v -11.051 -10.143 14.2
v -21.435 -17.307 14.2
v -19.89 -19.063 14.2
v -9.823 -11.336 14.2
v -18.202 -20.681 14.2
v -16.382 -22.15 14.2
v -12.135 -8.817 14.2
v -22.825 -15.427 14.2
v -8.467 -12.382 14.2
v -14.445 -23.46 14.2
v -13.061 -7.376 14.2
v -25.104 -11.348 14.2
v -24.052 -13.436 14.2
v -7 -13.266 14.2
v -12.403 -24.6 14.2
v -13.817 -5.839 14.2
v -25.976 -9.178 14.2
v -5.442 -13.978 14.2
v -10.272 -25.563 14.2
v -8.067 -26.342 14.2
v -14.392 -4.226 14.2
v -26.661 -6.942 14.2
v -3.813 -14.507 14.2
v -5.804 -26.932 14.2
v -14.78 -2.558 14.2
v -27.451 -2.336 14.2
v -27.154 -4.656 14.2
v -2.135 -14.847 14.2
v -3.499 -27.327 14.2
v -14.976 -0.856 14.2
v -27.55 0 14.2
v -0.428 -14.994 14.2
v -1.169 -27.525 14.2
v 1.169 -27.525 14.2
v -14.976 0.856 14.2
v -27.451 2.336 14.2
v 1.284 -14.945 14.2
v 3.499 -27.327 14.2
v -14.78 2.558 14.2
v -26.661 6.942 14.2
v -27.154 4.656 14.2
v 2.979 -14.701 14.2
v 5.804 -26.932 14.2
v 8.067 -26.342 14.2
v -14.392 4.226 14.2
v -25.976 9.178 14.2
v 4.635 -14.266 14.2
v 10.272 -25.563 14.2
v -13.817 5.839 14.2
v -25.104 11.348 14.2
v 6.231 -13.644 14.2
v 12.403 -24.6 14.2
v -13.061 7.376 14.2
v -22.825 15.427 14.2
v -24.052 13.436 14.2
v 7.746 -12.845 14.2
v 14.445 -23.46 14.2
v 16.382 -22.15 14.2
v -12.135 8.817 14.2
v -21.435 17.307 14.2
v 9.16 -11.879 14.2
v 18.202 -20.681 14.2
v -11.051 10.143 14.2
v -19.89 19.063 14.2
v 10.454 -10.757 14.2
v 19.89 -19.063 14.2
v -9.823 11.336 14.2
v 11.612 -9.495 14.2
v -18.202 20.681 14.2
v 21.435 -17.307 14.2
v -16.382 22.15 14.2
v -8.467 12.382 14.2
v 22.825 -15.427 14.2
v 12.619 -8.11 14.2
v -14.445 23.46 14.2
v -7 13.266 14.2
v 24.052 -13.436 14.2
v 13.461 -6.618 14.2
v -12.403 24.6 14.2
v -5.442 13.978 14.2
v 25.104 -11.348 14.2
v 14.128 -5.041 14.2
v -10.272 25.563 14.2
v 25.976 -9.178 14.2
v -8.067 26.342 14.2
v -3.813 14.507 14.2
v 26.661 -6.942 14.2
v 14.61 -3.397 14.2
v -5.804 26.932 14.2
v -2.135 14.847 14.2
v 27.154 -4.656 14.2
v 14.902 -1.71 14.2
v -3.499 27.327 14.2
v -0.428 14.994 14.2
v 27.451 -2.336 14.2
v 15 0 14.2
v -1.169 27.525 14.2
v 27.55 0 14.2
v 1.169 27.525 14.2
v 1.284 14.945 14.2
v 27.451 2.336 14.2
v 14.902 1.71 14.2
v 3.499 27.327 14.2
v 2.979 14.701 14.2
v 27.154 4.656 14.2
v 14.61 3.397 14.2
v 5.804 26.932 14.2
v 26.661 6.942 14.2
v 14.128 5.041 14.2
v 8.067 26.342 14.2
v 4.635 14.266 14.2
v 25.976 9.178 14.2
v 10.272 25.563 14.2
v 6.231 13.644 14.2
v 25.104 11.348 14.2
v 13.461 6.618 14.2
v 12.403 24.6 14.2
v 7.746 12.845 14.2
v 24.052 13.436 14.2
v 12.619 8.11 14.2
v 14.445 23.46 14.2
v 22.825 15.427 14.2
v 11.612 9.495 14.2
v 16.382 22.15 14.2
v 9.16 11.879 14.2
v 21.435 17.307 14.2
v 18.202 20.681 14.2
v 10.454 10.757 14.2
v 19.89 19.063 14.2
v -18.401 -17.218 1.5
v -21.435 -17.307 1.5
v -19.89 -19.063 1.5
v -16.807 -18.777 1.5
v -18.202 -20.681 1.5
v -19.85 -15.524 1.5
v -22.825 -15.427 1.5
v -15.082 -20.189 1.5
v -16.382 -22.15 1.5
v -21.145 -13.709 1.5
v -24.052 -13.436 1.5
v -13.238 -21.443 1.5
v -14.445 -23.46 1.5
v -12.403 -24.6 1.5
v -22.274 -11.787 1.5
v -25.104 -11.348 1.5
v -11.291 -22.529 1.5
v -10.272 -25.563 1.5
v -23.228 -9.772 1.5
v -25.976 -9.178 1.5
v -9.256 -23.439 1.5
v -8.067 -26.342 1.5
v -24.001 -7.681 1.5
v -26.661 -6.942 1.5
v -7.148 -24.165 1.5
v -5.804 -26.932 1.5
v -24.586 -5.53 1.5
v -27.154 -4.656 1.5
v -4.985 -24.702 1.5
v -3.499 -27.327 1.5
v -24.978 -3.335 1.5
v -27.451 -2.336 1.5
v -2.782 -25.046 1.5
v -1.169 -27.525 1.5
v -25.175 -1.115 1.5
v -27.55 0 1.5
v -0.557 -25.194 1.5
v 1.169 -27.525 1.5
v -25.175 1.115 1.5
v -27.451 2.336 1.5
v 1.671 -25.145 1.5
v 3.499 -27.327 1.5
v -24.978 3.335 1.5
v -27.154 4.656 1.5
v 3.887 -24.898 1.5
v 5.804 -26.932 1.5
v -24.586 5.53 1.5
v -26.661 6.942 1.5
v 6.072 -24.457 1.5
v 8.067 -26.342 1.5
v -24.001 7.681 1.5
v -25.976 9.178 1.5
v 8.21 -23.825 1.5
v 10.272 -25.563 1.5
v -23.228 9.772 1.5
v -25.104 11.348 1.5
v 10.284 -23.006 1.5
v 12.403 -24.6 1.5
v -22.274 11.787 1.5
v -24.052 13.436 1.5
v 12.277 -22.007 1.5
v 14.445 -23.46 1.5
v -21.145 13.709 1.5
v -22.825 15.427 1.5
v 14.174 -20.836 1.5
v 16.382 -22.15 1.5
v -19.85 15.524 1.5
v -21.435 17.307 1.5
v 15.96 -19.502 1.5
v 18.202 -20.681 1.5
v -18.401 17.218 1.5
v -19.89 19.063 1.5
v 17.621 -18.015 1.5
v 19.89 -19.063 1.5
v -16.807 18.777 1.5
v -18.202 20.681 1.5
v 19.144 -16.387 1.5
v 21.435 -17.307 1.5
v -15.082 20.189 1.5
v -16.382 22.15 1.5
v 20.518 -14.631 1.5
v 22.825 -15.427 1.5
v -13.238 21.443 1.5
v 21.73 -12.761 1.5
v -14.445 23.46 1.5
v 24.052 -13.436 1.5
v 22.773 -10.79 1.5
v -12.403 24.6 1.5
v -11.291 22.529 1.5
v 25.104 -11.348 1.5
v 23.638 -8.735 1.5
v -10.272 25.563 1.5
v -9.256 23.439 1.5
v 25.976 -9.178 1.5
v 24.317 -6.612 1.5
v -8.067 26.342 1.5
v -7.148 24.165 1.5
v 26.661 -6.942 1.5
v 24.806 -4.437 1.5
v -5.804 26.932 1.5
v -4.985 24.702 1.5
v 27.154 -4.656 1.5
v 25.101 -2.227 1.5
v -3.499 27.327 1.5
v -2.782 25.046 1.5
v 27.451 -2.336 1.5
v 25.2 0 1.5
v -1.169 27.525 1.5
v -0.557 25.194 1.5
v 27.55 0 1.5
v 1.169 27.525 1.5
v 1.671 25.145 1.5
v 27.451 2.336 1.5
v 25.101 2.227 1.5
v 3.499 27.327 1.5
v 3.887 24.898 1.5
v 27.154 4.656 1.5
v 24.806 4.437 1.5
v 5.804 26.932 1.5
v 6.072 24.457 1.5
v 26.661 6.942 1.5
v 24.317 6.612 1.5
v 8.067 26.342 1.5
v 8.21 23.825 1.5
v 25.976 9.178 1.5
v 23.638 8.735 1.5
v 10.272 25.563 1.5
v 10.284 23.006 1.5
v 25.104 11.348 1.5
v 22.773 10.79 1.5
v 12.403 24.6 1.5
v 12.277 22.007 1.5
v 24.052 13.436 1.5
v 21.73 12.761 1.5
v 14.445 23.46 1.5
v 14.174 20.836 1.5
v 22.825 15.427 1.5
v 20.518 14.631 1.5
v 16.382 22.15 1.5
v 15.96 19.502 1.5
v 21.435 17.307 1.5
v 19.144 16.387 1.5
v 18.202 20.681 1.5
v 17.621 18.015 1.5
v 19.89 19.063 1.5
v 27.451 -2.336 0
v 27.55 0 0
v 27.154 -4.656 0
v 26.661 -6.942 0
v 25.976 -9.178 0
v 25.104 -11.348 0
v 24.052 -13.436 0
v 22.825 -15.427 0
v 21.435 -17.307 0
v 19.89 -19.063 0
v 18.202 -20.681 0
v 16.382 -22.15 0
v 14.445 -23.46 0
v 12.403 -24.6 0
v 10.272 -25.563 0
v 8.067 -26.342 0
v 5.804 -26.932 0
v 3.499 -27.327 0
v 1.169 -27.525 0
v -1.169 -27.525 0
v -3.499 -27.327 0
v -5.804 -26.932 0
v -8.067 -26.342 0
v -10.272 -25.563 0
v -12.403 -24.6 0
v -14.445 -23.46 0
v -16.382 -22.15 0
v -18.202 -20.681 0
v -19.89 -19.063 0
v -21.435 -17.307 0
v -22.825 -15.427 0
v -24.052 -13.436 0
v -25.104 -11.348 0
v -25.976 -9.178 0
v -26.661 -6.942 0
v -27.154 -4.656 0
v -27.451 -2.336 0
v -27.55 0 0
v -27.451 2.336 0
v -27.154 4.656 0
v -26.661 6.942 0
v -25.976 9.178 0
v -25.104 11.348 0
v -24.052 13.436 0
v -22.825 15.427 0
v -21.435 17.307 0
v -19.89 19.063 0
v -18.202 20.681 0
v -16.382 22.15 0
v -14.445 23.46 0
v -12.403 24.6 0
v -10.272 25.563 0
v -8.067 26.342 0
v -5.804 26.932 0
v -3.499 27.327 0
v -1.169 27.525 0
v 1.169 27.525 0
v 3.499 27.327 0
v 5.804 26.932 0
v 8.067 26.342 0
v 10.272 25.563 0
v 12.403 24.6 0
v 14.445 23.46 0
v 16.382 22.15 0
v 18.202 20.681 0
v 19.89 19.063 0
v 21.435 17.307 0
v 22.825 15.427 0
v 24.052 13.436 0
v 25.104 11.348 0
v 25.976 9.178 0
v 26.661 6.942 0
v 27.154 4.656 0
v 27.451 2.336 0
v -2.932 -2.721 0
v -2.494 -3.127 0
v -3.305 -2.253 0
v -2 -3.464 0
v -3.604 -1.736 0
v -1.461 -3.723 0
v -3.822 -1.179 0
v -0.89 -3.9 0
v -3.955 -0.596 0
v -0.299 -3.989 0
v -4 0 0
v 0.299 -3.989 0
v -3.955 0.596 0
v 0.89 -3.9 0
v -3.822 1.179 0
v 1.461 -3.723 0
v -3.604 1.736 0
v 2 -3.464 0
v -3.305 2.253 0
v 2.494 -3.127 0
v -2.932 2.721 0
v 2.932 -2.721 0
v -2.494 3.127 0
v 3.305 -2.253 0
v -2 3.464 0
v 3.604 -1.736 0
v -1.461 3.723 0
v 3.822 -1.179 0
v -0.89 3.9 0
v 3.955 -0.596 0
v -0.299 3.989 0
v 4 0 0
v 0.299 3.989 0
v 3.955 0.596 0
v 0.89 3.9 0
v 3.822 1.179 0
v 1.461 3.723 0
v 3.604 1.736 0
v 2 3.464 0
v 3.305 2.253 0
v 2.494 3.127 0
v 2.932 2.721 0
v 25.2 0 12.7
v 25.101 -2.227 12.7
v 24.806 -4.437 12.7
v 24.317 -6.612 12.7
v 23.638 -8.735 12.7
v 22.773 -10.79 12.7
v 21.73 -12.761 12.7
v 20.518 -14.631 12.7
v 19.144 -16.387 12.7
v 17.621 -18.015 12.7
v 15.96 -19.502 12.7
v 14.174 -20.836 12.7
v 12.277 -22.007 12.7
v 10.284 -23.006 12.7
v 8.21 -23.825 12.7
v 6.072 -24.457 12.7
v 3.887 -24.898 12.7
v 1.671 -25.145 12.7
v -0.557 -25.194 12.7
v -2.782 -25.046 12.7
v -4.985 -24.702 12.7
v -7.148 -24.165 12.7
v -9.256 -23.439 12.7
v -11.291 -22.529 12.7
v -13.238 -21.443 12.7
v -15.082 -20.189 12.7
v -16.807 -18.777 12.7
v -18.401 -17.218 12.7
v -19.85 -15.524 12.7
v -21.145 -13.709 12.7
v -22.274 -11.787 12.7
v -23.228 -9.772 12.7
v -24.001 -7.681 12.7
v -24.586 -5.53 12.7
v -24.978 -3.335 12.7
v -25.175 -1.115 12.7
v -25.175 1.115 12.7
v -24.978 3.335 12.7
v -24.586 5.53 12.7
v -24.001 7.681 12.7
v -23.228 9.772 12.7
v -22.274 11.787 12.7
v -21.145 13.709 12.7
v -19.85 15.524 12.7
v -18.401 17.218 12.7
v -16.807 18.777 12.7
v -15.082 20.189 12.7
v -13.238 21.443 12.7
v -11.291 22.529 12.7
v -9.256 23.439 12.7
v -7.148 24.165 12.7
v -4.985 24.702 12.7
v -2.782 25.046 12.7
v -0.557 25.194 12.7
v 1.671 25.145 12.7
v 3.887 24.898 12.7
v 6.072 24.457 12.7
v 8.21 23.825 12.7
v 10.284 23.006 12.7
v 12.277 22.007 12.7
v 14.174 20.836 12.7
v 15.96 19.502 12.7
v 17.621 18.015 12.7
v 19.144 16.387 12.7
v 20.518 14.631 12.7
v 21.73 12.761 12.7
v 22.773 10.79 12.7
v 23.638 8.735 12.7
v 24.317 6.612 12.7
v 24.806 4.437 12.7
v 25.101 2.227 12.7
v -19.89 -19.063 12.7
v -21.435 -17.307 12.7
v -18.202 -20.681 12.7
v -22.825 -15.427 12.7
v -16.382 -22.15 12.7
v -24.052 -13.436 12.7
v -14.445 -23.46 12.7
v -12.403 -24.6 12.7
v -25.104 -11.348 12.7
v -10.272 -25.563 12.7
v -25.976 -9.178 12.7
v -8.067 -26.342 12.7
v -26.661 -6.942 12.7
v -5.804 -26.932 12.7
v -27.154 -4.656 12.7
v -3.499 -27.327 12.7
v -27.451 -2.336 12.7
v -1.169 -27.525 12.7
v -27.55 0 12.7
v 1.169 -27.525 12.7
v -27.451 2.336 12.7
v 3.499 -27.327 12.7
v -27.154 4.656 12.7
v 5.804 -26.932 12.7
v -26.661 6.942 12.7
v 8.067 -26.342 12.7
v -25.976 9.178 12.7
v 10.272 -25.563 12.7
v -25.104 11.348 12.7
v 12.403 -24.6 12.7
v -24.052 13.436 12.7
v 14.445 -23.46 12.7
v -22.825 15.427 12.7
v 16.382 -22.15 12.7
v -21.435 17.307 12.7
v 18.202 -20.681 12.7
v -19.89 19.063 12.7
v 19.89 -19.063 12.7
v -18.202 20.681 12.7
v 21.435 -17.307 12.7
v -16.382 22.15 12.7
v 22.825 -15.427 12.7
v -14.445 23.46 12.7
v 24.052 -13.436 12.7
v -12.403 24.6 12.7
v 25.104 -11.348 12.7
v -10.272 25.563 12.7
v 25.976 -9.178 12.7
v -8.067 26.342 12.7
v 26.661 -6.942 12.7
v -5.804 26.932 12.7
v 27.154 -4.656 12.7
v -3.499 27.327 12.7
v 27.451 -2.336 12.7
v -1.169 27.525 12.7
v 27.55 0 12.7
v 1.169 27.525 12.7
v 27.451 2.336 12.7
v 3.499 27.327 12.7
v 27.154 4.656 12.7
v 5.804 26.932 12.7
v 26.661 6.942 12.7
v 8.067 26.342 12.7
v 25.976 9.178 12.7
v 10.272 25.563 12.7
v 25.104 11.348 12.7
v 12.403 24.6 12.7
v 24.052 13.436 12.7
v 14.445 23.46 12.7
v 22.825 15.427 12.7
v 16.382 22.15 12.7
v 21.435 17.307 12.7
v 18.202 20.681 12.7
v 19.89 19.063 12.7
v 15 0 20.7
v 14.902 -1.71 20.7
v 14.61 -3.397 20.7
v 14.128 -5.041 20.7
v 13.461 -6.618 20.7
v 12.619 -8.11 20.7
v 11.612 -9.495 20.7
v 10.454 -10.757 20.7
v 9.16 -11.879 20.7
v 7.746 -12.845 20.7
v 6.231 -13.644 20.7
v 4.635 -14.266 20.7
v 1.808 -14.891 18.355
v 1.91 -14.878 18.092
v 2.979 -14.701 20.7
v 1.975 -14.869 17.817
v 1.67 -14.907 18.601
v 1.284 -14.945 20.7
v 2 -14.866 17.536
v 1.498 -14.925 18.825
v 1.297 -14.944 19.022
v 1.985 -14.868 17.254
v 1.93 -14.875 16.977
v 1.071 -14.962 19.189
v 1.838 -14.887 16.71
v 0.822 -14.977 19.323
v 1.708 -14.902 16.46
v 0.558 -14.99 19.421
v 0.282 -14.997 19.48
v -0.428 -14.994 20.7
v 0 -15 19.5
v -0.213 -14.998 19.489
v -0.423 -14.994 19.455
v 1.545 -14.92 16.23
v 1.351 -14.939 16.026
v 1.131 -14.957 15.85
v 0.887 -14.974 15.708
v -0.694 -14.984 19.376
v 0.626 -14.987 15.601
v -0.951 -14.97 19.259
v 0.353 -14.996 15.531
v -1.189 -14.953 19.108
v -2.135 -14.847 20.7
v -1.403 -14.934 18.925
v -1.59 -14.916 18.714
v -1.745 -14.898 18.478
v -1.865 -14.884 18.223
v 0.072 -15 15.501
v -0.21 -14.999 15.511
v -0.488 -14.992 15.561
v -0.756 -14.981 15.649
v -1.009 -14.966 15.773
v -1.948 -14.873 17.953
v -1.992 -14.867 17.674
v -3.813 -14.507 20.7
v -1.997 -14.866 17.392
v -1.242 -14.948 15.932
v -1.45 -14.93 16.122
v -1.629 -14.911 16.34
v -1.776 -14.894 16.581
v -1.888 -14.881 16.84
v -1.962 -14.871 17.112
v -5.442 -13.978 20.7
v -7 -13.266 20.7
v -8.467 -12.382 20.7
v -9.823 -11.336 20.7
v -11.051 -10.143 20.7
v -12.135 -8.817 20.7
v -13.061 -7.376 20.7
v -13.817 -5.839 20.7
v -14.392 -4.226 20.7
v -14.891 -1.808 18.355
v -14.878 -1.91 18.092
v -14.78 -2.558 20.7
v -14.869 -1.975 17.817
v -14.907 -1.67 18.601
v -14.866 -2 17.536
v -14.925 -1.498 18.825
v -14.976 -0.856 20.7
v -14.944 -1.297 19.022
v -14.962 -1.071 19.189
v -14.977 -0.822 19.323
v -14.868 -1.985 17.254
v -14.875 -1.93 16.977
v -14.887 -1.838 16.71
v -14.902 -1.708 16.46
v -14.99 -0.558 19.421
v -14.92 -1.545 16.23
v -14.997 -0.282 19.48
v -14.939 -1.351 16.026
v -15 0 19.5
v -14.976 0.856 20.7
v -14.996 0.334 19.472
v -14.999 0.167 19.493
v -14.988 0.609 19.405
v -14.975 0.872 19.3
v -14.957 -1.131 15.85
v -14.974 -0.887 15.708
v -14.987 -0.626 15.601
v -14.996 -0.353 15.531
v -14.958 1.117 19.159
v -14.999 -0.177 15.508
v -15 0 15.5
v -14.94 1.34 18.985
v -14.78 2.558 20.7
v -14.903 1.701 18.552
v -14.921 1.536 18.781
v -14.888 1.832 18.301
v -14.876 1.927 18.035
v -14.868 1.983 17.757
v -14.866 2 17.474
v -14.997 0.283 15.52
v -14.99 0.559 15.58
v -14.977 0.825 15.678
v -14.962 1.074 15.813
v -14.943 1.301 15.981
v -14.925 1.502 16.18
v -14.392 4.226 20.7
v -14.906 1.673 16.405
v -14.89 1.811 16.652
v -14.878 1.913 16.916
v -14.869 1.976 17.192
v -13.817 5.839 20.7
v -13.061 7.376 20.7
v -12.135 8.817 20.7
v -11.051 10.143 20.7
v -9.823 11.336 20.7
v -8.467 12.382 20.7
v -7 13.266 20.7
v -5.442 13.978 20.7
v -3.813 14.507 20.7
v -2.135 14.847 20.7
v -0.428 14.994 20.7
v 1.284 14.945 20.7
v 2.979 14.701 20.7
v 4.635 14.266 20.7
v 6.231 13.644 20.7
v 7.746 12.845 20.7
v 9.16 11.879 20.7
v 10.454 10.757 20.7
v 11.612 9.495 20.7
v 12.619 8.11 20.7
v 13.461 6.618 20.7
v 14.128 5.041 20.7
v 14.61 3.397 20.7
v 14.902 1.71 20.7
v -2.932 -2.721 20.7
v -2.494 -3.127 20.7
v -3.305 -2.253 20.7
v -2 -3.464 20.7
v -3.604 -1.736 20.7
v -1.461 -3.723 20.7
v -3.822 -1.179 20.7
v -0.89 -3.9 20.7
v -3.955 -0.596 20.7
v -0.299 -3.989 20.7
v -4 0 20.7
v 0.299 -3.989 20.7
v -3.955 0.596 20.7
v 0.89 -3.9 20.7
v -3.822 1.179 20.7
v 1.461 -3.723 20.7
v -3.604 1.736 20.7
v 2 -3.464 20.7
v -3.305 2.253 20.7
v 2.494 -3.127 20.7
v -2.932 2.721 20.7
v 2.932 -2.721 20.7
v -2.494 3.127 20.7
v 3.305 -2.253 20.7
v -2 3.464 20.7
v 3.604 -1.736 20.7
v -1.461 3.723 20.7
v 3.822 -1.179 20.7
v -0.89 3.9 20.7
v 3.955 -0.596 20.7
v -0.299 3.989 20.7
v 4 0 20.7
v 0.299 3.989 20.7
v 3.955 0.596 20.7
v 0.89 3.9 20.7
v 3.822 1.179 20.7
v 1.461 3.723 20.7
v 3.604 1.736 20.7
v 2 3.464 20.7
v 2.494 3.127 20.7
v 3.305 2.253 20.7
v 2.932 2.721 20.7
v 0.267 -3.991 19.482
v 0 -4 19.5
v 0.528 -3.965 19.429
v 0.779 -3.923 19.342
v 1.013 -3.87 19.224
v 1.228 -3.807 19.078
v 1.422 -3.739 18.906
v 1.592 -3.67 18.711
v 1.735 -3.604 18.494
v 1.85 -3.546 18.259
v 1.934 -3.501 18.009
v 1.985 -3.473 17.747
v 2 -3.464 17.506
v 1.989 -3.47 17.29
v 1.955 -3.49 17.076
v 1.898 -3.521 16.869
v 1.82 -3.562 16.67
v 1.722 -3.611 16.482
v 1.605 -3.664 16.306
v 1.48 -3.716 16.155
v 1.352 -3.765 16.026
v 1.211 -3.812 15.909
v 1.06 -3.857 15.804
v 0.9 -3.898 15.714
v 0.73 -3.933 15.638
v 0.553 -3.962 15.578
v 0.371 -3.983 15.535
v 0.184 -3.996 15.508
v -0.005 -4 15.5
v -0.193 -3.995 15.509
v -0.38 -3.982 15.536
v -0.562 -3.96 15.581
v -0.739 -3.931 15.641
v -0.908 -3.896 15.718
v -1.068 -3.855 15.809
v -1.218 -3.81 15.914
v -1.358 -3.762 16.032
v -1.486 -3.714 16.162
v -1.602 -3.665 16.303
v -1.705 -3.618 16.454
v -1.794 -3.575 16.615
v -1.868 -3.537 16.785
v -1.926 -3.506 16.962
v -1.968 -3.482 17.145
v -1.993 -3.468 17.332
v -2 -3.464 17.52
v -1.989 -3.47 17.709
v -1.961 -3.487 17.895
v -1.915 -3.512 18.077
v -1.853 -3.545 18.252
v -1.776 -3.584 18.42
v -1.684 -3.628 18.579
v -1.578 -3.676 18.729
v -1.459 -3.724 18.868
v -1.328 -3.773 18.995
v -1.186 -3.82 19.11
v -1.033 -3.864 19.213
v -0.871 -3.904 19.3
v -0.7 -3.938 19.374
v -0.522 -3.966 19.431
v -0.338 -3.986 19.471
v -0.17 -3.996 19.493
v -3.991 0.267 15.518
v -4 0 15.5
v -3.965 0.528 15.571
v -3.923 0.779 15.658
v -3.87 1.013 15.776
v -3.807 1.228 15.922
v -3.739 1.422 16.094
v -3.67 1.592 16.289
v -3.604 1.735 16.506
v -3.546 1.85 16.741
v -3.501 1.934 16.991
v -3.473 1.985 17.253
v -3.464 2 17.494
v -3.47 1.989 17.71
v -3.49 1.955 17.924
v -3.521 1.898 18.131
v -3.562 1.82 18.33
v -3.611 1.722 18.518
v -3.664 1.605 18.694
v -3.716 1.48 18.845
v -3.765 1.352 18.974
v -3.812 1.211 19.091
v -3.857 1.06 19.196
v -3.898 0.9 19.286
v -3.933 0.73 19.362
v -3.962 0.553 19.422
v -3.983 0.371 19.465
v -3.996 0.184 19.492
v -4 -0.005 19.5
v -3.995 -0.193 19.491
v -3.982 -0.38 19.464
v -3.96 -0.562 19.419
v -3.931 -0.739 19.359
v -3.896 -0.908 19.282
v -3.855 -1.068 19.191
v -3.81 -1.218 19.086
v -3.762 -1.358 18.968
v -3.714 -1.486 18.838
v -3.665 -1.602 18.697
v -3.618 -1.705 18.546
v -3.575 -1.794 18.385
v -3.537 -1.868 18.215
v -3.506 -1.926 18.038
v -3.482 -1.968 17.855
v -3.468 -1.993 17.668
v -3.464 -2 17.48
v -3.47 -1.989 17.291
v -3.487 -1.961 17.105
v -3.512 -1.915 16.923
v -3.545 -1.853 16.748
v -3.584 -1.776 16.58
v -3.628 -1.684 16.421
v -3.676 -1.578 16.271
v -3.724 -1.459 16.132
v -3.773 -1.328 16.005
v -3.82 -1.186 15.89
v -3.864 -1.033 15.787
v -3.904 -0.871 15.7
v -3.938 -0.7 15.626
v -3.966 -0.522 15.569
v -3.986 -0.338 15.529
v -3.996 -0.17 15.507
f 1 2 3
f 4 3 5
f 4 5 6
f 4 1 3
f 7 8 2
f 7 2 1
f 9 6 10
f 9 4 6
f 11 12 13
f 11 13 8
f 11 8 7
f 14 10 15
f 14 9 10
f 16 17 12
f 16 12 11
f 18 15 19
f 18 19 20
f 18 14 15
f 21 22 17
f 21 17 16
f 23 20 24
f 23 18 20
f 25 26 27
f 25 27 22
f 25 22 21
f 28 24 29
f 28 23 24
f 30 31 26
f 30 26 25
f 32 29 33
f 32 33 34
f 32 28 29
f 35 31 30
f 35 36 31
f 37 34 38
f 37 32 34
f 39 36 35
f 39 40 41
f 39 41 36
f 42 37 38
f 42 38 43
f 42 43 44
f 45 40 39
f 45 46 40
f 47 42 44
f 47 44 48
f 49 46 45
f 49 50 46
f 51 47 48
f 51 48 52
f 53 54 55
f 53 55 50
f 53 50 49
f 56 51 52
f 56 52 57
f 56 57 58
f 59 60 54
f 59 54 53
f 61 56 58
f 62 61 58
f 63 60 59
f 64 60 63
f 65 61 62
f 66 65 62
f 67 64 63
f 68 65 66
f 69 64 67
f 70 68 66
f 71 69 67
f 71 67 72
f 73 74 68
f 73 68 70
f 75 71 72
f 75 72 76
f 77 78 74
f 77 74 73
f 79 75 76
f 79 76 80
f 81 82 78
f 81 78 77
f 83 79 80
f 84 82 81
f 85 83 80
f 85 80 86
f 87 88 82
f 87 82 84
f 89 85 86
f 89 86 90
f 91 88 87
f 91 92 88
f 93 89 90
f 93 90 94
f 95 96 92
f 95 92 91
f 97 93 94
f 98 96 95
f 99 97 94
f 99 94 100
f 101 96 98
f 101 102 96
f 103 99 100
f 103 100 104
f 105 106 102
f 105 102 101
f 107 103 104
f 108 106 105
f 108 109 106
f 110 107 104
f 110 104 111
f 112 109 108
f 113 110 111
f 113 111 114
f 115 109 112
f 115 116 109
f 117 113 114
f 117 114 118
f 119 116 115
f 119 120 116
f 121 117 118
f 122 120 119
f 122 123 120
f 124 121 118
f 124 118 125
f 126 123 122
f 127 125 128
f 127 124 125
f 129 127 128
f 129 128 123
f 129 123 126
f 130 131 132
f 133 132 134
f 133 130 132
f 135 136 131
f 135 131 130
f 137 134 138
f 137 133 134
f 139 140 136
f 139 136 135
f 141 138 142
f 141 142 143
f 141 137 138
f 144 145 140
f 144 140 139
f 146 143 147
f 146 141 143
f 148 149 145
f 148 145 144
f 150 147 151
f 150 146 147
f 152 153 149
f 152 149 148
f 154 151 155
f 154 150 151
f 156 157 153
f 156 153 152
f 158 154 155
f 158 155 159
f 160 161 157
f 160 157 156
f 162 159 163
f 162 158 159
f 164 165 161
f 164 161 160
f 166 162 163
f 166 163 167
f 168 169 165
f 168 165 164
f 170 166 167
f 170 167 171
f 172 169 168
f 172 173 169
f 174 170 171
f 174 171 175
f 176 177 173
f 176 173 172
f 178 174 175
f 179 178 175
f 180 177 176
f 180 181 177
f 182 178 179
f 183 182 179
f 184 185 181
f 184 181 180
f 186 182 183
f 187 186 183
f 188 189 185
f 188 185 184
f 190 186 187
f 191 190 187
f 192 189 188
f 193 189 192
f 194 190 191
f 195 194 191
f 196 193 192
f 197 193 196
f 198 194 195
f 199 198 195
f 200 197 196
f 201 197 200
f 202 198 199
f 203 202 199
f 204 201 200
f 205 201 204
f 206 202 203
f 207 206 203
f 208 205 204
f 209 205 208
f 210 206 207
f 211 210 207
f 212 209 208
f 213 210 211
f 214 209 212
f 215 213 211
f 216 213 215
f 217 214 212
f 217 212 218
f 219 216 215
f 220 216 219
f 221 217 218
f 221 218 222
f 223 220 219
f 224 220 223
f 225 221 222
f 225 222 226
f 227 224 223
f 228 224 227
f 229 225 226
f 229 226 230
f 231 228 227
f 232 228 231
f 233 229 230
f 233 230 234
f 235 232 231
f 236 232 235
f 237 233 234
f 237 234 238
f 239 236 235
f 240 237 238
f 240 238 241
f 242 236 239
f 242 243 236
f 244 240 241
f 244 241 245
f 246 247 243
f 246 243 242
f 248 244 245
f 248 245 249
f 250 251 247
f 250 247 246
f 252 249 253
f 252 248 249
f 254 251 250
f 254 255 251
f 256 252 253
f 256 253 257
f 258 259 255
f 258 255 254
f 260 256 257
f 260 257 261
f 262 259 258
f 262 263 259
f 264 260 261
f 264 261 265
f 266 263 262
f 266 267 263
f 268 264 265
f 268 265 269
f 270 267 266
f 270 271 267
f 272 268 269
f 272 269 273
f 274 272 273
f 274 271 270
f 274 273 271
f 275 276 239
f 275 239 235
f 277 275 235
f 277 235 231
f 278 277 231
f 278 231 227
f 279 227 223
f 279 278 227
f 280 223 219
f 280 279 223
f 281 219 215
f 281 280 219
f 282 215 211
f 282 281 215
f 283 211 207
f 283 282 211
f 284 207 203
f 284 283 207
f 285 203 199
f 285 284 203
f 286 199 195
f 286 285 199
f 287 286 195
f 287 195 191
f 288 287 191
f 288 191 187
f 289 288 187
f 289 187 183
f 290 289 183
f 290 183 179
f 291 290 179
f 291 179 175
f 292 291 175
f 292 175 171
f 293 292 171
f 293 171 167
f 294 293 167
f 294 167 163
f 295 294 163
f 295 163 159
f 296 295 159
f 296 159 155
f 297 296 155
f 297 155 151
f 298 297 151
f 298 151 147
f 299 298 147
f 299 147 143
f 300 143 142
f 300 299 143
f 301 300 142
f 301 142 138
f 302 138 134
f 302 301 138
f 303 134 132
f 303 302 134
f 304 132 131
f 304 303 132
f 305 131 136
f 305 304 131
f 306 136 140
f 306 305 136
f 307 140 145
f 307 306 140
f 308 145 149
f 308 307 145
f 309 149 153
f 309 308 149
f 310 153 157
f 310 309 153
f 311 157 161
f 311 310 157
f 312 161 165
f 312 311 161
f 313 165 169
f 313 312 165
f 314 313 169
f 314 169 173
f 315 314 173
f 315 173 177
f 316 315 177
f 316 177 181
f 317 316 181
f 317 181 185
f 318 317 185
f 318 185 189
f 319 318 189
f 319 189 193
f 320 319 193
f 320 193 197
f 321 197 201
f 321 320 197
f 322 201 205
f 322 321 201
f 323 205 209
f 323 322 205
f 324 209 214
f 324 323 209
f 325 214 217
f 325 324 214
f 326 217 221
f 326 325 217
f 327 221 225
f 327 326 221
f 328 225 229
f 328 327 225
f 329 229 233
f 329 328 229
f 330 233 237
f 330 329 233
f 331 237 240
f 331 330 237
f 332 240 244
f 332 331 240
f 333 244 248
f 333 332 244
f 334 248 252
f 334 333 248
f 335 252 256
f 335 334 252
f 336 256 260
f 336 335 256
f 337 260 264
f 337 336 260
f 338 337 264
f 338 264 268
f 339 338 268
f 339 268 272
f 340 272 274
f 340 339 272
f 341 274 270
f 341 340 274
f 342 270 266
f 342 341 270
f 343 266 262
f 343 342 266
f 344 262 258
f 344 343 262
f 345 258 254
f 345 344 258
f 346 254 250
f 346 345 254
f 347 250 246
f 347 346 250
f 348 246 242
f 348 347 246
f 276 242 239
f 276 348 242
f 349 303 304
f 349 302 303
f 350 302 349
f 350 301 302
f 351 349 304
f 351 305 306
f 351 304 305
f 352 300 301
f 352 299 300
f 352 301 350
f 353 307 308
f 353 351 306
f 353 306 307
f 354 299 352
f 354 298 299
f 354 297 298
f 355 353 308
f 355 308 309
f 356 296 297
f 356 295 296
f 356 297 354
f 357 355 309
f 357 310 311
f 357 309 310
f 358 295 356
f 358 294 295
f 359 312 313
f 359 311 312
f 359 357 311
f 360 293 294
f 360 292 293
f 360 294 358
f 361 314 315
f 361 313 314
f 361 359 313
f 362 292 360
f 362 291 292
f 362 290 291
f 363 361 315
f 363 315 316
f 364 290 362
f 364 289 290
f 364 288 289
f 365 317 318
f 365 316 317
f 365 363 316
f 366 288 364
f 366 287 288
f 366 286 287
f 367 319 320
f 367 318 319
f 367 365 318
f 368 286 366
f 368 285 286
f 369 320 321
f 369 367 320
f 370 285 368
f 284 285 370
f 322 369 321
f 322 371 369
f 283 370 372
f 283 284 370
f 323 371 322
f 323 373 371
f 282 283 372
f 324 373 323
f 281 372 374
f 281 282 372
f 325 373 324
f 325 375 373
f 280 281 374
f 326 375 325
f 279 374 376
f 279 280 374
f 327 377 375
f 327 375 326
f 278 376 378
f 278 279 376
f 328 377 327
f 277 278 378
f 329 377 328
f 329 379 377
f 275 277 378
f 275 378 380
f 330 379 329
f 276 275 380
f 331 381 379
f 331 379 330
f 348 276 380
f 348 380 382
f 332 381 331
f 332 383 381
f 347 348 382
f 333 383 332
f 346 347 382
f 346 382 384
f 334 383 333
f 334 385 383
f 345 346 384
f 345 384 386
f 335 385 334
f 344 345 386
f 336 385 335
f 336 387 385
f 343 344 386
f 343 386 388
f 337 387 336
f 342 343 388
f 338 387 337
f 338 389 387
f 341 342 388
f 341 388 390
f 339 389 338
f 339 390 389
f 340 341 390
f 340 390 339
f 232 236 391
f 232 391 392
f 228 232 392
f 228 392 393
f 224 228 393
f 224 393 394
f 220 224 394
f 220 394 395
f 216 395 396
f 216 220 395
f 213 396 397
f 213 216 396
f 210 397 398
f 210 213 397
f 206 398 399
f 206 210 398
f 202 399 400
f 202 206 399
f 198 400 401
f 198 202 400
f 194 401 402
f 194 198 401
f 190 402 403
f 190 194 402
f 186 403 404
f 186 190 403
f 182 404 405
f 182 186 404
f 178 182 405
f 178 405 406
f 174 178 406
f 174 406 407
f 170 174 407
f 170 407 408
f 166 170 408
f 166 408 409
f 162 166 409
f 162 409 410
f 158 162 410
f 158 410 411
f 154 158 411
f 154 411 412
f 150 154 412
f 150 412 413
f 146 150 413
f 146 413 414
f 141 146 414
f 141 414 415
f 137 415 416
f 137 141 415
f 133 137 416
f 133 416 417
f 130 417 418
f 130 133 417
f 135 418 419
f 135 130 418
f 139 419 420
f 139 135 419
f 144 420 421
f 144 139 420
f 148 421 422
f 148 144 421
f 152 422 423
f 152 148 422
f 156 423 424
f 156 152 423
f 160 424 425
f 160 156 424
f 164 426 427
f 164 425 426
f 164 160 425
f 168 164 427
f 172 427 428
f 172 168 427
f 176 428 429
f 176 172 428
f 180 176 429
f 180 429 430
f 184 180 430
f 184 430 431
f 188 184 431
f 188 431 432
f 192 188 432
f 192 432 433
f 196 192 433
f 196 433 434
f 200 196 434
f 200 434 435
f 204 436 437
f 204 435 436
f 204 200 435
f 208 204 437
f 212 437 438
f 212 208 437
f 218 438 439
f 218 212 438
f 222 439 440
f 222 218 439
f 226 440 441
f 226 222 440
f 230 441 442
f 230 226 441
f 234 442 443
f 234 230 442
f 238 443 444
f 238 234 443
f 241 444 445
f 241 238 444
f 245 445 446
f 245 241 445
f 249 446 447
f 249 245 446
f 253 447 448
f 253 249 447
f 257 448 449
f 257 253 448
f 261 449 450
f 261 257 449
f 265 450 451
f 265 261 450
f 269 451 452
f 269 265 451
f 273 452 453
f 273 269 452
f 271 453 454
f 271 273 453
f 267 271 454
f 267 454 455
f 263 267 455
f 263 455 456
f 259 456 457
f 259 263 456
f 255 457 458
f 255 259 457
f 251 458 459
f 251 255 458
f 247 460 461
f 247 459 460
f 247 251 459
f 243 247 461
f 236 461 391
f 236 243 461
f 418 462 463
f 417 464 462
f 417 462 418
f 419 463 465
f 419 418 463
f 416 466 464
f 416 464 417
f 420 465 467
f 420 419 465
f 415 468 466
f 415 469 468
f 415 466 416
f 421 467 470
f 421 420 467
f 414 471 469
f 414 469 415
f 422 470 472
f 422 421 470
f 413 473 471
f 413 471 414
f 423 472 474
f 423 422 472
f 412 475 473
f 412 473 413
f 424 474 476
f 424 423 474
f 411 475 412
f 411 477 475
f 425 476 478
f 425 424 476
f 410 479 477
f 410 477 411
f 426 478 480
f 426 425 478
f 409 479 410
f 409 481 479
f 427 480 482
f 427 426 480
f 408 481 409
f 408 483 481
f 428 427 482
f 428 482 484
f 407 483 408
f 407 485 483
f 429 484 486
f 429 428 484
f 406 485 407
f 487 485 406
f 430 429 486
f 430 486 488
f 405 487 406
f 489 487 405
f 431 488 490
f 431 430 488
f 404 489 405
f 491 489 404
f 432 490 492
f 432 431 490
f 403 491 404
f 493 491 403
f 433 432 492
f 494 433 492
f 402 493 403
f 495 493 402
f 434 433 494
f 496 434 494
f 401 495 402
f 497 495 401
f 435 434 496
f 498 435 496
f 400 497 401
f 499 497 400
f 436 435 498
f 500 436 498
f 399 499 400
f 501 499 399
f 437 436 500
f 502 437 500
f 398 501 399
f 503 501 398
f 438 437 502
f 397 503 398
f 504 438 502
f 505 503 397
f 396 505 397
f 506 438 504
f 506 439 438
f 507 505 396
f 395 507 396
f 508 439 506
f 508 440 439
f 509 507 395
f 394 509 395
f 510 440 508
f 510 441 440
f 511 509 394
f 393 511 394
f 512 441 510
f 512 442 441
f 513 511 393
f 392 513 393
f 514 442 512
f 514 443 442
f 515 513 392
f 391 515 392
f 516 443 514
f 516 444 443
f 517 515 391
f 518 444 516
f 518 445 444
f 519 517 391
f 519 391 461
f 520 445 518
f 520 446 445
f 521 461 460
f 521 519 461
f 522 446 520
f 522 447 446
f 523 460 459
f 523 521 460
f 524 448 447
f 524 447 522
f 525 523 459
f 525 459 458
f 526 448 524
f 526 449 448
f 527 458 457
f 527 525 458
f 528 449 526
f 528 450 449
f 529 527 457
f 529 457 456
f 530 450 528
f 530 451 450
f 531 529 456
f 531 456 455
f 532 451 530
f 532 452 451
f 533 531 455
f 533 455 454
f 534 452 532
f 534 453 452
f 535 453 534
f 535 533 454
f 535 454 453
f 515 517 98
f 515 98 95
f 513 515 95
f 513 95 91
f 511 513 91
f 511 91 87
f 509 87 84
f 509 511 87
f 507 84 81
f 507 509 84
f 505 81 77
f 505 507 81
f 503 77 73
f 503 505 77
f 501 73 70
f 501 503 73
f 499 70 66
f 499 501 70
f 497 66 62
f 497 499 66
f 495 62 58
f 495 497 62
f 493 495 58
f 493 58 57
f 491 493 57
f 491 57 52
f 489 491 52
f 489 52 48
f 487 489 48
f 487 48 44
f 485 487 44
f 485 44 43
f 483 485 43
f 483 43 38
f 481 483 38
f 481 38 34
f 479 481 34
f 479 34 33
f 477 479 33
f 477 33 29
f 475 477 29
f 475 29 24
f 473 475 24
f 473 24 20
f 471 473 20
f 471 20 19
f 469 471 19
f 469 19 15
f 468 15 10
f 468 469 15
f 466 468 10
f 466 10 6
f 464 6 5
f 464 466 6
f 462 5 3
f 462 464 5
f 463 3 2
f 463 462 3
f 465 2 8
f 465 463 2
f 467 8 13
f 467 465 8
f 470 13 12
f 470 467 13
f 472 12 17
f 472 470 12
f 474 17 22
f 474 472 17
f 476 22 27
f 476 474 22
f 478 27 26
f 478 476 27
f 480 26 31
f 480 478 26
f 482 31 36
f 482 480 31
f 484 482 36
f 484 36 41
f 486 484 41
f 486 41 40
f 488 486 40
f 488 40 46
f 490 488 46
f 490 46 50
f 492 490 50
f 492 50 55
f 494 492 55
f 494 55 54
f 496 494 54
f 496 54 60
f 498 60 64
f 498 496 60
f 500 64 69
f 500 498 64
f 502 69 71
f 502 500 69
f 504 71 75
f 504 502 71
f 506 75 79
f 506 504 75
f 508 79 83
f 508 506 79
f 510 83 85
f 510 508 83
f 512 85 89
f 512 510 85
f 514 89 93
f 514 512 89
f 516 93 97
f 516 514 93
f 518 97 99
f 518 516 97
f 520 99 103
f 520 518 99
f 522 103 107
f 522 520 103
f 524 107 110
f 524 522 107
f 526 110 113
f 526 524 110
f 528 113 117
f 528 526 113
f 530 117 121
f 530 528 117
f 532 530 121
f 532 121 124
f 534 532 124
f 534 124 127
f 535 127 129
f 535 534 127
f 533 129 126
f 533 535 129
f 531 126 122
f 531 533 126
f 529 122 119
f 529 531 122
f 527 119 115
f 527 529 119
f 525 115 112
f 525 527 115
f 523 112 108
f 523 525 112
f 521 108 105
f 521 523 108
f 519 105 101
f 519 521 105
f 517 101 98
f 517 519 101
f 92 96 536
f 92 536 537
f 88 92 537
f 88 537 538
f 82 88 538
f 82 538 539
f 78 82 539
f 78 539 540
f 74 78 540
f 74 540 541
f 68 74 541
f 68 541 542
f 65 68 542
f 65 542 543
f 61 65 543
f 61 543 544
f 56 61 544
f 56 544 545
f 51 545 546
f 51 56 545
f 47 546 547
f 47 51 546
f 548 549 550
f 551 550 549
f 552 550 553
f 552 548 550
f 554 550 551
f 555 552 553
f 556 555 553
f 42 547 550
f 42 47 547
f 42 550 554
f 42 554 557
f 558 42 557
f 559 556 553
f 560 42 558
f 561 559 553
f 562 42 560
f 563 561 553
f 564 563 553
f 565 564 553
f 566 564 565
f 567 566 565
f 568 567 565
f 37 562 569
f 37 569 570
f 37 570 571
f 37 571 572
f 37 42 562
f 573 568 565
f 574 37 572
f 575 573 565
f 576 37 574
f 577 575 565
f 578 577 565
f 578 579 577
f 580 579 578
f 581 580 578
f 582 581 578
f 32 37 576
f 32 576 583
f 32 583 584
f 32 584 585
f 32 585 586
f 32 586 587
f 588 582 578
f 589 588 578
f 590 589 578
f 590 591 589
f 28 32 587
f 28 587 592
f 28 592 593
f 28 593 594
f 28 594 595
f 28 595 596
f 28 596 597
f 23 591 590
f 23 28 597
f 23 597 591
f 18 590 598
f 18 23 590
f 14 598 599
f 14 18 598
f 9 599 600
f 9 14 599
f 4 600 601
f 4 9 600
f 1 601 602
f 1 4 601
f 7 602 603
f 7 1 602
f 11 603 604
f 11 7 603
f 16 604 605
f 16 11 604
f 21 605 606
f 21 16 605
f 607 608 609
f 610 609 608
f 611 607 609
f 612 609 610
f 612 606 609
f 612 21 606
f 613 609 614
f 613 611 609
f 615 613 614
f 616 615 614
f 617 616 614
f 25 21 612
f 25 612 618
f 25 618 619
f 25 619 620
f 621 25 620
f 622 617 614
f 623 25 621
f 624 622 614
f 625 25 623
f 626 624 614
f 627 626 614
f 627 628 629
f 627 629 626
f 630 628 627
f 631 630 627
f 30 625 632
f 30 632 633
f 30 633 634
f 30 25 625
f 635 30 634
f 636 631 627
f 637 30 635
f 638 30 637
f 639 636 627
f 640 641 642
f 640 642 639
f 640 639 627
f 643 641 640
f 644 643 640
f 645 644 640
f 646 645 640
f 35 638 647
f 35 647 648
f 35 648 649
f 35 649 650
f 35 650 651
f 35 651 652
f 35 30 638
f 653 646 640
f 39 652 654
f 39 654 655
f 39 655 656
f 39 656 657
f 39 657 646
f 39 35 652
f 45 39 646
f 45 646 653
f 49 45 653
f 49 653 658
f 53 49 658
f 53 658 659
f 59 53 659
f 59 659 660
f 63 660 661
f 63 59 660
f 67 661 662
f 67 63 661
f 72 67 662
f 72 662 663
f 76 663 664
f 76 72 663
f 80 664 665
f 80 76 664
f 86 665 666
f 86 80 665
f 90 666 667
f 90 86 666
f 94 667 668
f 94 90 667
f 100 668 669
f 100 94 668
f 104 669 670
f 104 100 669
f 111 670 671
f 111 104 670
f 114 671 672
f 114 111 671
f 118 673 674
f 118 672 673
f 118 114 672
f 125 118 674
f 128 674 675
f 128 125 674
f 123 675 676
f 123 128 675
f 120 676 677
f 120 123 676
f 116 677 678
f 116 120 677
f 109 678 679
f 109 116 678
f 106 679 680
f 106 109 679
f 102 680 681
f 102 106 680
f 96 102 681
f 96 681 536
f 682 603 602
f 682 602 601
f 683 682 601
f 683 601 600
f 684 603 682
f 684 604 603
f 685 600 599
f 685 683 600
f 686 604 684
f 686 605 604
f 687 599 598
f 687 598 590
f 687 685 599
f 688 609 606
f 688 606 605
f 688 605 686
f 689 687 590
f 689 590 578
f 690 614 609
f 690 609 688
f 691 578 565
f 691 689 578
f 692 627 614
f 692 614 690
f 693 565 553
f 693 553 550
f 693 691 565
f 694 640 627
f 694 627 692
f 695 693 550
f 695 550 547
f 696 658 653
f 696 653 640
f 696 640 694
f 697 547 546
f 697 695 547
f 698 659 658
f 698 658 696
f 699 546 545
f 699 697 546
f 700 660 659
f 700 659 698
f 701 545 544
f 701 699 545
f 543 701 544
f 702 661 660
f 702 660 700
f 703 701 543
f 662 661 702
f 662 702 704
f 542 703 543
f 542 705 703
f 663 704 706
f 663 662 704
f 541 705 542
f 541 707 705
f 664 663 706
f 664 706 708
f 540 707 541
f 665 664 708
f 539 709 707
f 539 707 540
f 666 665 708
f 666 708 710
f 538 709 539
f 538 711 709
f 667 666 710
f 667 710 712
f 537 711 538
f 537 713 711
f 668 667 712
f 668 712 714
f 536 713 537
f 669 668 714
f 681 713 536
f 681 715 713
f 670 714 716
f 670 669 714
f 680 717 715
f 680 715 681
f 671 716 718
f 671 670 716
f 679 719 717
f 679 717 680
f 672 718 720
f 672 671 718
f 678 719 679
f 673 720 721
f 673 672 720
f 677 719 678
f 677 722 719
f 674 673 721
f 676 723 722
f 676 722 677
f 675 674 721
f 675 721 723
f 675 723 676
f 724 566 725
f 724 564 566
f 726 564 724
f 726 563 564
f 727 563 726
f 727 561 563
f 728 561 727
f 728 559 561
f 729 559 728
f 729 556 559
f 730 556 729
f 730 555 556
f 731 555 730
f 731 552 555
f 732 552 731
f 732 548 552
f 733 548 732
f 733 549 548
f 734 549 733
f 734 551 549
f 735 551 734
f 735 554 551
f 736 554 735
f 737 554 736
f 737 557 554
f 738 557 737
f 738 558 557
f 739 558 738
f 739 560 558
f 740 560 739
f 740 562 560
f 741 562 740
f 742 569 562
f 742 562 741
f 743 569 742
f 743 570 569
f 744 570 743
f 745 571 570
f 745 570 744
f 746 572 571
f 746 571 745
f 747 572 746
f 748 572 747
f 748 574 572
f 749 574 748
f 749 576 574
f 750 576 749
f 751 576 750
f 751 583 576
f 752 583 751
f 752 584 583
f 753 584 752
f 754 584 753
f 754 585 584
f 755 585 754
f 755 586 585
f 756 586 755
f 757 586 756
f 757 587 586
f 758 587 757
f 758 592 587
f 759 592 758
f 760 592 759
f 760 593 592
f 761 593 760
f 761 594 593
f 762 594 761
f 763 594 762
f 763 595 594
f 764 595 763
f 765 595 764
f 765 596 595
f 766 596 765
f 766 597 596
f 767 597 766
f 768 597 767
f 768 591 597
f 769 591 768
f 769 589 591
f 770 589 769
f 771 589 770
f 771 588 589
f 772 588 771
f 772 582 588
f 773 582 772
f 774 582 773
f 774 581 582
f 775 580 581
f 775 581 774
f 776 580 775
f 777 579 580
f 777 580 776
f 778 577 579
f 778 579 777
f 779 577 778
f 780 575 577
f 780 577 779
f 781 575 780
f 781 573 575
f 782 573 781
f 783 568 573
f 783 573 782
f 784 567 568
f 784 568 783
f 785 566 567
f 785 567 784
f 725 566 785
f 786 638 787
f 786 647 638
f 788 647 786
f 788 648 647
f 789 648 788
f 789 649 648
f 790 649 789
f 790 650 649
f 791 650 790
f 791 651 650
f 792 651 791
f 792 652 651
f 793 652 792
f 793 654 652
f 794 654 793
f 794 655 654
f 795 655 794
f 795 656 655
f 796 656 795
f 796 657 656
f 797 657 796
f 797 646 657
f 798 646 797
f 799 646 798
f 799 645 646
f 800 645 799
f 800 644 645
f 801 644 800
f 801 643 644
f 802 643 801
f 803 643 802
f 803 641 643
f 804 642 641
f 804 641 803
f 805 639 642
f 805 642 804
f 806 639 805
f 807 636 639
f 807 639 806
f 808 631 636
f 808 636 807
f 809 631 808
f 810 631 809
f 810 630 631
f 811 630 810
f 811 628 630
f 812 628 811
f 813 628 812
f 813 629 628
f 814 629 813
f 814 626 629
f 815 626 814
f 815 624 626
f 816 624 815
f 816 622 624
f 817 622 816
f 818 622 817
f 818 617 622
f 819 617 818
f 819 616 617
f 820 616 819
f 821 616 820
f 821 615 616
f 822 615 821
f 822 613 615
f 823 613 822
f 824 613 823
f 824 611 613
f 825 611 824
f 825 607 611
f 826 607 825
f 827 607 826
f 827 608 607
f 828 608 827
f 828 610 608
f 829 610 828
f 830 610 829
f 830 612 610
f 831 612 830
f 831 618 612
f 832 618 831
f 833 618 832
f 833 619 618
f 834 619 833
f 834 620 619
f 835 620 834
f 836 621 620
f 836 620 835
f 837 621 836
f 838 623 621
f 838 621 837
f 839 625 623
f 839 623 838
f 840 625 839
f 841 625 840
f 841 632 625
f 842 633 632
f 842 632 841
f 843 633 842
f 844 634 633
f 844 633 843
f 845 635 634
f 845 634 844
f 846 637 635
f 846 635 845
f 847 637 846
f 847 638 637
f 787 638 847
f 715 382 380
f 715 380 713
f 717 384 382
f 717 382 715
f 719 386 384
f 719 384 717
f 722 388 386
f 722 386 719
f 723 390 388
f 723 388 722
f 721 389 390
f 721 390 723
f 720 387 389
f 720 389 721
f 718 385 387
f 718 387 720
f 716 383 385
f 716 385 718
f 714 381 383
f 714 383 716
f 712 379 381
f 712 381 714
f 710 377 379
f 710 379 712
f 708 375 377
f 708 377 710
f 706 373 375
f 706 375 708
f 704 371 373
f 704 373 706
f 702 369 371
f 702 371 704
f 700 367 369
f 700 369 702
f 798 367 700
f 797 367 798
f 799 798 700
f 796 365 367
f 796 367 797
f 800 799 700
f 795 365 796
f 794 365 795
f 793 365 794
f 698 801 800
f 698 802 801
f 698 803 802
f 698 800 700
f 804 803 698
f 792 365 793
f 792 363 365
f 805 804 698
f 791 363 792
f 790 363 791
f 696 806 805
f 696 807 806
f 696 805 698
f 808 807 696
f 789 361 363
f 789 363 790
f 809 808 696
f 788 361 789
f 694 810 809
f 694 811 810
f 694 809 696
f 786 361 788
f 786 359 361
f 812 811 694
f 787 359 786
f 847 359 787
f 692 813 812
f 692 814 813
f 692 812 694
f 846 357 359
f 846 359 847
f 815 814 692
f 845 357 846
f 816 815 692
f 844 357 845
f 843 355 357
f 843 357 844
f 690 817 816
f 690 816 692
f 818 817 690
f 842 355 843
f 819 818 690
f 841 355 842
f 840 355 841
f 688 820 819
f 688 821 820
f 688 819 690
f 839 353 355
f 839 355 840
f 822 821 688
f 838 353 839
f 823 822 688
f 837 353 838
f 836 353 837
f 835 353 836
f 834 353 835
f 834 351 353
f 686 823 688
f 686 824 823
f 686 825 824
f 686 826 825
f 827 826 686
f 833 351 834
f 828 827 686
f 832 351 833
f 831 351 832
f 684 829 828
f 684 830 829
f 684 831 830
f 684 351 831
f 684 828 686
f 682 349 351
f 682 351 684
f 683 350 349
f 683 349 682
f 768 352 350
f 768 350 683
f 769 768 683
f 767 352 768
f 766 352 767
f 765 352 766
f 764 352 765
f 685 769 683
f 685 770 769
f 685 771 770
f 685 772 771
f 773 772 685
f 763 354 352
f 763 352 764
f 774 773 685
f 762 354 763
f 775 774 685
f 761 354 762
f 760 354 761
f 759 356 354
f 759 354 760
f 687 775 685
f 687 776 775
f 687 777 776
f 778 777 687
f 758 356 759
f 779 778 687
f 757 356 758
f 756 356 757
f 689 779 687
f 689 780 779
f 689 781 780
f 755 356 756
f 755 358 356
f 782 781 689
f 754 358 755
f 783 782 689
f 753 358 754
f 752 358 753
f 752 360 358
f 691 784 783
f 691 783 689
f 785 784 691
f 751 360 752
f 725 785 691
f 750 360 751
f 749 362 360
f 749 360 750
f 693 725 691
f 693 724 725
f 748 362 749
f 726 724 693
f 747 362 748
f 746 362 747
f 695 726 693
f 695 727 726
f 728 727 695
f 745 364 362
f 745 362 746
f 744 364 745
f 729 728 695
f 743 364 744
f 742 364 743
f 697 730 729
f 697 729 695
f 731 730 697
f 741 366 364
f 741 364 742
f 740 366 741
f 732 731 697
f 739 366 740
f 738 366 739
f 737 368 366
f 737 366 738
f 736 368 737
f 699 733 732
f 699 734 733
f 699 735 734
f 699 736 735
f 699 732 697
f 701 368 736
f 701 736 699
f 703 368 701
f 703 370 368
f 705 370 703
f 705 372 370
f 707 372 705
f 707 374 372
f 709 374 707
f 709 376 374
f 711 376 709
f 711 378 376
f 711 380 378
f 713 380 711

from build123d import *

# Parameters (mm, degrees)
CROQUIS1_R              = 27.55
SALIENTE_EXTRUIR1_DEPTH = 1.5
CROQUIS2_R              = 25.2
SALIENTE_EXTRUIR2_DEPTH = 11.2
CROQUIS3_R              = 27.55
SALIENTE_EXTRUIR3_DEPTH = 1.5
CROQUIS8_R              = 15
SALIENTE_EXTRUIR5_DEPTH = 6.5
CROQUIS6_R              = 2
CORTAR_EXTRUIR3_DEPTH   = 45.119100172
CROQUIS5_R              = 2
CORTAR_EXTRUIR2_DEPTH   = 45.119100219
CROQUIS4_R              = 4
CORTAR_EXTRUIR1_DEPTH   = 45.119100172


with BuildPart() as part:
    # Croquis1 → Saliente-Extruir1 (new body)
    with BuildSketch(Plane.XY):
        Circle(CROQUIS1_R)
    extrude(amount=SALIENTE_EXTRUIR1_DEPTH)

    # Croquis2 → Saliente-Extruir2 (add)
    with BuildSketch(Plane.XY.offset(1.5)):
        Circle(CROQUIS2_R)
    extrude(amount=SALIENTE_EXTRUIR2_DEPTH)

    # Croquis3 → Saliente-Extruir3 (add)
    with BuildSketch(Plane.XY.offset(12.7)):
        Circle(CROQUIS3_R)
    extrude(amount=SALIENTE_EXTRUIR3_DEPTH)

    # Croquis8 → Saliente-Extruir5 (add)
    with BuildSketch(Plane.XY.offset(14.2)):
        with Locations(Location((0, 0, 0), (0, 0, 180))):
            Circle(CROQUIS8_R)
    extrude(amount=SALIENTE_EXTRUIR5_DEPTH)

    # Croquis6 → Cortar-Extruir3 (cut, through all)
    with BuildSketch(Plane(origin=(0, 0, 0), x_dir=(1, 0, 0), z_dir=(0, 1, 0))):
        with Locations(Location((0, -17.5, 0), (0, 0, 270))):
            Circle(CROQUIS6_R)
    extrude(amount=-CORTAR_EXTRUIR3_DEPTH, mode=Mode.SUBTRACT)

    # Croquis5 → Cortar-Extruir2 (cut, through all)
    with BuildSketch(Plane(origin=(0, 0, 0), x_dir=(0, 0, -1), z_dir=(1, 0, 0))):
        with Locations(Location((-17.5, 0, 0), (0, 0, 180))):
            Circle(CROQUIS5_R)
    extrude(amount=-CORTAR_EXTRUIR2_DEPTH, mode=Mode.SUBTRACT)

    # Croquis4 → Cortar-Extruir1 (cut, through all)
    with BuildSketch(Plane.XY.offset(20.7)):
        Circle(CROQUIS4_R)
    extrude(amount=-CORTAR_EXTRUIR1_DEPTH, mode=Mode.SUBTRACT)


solid = part.part
